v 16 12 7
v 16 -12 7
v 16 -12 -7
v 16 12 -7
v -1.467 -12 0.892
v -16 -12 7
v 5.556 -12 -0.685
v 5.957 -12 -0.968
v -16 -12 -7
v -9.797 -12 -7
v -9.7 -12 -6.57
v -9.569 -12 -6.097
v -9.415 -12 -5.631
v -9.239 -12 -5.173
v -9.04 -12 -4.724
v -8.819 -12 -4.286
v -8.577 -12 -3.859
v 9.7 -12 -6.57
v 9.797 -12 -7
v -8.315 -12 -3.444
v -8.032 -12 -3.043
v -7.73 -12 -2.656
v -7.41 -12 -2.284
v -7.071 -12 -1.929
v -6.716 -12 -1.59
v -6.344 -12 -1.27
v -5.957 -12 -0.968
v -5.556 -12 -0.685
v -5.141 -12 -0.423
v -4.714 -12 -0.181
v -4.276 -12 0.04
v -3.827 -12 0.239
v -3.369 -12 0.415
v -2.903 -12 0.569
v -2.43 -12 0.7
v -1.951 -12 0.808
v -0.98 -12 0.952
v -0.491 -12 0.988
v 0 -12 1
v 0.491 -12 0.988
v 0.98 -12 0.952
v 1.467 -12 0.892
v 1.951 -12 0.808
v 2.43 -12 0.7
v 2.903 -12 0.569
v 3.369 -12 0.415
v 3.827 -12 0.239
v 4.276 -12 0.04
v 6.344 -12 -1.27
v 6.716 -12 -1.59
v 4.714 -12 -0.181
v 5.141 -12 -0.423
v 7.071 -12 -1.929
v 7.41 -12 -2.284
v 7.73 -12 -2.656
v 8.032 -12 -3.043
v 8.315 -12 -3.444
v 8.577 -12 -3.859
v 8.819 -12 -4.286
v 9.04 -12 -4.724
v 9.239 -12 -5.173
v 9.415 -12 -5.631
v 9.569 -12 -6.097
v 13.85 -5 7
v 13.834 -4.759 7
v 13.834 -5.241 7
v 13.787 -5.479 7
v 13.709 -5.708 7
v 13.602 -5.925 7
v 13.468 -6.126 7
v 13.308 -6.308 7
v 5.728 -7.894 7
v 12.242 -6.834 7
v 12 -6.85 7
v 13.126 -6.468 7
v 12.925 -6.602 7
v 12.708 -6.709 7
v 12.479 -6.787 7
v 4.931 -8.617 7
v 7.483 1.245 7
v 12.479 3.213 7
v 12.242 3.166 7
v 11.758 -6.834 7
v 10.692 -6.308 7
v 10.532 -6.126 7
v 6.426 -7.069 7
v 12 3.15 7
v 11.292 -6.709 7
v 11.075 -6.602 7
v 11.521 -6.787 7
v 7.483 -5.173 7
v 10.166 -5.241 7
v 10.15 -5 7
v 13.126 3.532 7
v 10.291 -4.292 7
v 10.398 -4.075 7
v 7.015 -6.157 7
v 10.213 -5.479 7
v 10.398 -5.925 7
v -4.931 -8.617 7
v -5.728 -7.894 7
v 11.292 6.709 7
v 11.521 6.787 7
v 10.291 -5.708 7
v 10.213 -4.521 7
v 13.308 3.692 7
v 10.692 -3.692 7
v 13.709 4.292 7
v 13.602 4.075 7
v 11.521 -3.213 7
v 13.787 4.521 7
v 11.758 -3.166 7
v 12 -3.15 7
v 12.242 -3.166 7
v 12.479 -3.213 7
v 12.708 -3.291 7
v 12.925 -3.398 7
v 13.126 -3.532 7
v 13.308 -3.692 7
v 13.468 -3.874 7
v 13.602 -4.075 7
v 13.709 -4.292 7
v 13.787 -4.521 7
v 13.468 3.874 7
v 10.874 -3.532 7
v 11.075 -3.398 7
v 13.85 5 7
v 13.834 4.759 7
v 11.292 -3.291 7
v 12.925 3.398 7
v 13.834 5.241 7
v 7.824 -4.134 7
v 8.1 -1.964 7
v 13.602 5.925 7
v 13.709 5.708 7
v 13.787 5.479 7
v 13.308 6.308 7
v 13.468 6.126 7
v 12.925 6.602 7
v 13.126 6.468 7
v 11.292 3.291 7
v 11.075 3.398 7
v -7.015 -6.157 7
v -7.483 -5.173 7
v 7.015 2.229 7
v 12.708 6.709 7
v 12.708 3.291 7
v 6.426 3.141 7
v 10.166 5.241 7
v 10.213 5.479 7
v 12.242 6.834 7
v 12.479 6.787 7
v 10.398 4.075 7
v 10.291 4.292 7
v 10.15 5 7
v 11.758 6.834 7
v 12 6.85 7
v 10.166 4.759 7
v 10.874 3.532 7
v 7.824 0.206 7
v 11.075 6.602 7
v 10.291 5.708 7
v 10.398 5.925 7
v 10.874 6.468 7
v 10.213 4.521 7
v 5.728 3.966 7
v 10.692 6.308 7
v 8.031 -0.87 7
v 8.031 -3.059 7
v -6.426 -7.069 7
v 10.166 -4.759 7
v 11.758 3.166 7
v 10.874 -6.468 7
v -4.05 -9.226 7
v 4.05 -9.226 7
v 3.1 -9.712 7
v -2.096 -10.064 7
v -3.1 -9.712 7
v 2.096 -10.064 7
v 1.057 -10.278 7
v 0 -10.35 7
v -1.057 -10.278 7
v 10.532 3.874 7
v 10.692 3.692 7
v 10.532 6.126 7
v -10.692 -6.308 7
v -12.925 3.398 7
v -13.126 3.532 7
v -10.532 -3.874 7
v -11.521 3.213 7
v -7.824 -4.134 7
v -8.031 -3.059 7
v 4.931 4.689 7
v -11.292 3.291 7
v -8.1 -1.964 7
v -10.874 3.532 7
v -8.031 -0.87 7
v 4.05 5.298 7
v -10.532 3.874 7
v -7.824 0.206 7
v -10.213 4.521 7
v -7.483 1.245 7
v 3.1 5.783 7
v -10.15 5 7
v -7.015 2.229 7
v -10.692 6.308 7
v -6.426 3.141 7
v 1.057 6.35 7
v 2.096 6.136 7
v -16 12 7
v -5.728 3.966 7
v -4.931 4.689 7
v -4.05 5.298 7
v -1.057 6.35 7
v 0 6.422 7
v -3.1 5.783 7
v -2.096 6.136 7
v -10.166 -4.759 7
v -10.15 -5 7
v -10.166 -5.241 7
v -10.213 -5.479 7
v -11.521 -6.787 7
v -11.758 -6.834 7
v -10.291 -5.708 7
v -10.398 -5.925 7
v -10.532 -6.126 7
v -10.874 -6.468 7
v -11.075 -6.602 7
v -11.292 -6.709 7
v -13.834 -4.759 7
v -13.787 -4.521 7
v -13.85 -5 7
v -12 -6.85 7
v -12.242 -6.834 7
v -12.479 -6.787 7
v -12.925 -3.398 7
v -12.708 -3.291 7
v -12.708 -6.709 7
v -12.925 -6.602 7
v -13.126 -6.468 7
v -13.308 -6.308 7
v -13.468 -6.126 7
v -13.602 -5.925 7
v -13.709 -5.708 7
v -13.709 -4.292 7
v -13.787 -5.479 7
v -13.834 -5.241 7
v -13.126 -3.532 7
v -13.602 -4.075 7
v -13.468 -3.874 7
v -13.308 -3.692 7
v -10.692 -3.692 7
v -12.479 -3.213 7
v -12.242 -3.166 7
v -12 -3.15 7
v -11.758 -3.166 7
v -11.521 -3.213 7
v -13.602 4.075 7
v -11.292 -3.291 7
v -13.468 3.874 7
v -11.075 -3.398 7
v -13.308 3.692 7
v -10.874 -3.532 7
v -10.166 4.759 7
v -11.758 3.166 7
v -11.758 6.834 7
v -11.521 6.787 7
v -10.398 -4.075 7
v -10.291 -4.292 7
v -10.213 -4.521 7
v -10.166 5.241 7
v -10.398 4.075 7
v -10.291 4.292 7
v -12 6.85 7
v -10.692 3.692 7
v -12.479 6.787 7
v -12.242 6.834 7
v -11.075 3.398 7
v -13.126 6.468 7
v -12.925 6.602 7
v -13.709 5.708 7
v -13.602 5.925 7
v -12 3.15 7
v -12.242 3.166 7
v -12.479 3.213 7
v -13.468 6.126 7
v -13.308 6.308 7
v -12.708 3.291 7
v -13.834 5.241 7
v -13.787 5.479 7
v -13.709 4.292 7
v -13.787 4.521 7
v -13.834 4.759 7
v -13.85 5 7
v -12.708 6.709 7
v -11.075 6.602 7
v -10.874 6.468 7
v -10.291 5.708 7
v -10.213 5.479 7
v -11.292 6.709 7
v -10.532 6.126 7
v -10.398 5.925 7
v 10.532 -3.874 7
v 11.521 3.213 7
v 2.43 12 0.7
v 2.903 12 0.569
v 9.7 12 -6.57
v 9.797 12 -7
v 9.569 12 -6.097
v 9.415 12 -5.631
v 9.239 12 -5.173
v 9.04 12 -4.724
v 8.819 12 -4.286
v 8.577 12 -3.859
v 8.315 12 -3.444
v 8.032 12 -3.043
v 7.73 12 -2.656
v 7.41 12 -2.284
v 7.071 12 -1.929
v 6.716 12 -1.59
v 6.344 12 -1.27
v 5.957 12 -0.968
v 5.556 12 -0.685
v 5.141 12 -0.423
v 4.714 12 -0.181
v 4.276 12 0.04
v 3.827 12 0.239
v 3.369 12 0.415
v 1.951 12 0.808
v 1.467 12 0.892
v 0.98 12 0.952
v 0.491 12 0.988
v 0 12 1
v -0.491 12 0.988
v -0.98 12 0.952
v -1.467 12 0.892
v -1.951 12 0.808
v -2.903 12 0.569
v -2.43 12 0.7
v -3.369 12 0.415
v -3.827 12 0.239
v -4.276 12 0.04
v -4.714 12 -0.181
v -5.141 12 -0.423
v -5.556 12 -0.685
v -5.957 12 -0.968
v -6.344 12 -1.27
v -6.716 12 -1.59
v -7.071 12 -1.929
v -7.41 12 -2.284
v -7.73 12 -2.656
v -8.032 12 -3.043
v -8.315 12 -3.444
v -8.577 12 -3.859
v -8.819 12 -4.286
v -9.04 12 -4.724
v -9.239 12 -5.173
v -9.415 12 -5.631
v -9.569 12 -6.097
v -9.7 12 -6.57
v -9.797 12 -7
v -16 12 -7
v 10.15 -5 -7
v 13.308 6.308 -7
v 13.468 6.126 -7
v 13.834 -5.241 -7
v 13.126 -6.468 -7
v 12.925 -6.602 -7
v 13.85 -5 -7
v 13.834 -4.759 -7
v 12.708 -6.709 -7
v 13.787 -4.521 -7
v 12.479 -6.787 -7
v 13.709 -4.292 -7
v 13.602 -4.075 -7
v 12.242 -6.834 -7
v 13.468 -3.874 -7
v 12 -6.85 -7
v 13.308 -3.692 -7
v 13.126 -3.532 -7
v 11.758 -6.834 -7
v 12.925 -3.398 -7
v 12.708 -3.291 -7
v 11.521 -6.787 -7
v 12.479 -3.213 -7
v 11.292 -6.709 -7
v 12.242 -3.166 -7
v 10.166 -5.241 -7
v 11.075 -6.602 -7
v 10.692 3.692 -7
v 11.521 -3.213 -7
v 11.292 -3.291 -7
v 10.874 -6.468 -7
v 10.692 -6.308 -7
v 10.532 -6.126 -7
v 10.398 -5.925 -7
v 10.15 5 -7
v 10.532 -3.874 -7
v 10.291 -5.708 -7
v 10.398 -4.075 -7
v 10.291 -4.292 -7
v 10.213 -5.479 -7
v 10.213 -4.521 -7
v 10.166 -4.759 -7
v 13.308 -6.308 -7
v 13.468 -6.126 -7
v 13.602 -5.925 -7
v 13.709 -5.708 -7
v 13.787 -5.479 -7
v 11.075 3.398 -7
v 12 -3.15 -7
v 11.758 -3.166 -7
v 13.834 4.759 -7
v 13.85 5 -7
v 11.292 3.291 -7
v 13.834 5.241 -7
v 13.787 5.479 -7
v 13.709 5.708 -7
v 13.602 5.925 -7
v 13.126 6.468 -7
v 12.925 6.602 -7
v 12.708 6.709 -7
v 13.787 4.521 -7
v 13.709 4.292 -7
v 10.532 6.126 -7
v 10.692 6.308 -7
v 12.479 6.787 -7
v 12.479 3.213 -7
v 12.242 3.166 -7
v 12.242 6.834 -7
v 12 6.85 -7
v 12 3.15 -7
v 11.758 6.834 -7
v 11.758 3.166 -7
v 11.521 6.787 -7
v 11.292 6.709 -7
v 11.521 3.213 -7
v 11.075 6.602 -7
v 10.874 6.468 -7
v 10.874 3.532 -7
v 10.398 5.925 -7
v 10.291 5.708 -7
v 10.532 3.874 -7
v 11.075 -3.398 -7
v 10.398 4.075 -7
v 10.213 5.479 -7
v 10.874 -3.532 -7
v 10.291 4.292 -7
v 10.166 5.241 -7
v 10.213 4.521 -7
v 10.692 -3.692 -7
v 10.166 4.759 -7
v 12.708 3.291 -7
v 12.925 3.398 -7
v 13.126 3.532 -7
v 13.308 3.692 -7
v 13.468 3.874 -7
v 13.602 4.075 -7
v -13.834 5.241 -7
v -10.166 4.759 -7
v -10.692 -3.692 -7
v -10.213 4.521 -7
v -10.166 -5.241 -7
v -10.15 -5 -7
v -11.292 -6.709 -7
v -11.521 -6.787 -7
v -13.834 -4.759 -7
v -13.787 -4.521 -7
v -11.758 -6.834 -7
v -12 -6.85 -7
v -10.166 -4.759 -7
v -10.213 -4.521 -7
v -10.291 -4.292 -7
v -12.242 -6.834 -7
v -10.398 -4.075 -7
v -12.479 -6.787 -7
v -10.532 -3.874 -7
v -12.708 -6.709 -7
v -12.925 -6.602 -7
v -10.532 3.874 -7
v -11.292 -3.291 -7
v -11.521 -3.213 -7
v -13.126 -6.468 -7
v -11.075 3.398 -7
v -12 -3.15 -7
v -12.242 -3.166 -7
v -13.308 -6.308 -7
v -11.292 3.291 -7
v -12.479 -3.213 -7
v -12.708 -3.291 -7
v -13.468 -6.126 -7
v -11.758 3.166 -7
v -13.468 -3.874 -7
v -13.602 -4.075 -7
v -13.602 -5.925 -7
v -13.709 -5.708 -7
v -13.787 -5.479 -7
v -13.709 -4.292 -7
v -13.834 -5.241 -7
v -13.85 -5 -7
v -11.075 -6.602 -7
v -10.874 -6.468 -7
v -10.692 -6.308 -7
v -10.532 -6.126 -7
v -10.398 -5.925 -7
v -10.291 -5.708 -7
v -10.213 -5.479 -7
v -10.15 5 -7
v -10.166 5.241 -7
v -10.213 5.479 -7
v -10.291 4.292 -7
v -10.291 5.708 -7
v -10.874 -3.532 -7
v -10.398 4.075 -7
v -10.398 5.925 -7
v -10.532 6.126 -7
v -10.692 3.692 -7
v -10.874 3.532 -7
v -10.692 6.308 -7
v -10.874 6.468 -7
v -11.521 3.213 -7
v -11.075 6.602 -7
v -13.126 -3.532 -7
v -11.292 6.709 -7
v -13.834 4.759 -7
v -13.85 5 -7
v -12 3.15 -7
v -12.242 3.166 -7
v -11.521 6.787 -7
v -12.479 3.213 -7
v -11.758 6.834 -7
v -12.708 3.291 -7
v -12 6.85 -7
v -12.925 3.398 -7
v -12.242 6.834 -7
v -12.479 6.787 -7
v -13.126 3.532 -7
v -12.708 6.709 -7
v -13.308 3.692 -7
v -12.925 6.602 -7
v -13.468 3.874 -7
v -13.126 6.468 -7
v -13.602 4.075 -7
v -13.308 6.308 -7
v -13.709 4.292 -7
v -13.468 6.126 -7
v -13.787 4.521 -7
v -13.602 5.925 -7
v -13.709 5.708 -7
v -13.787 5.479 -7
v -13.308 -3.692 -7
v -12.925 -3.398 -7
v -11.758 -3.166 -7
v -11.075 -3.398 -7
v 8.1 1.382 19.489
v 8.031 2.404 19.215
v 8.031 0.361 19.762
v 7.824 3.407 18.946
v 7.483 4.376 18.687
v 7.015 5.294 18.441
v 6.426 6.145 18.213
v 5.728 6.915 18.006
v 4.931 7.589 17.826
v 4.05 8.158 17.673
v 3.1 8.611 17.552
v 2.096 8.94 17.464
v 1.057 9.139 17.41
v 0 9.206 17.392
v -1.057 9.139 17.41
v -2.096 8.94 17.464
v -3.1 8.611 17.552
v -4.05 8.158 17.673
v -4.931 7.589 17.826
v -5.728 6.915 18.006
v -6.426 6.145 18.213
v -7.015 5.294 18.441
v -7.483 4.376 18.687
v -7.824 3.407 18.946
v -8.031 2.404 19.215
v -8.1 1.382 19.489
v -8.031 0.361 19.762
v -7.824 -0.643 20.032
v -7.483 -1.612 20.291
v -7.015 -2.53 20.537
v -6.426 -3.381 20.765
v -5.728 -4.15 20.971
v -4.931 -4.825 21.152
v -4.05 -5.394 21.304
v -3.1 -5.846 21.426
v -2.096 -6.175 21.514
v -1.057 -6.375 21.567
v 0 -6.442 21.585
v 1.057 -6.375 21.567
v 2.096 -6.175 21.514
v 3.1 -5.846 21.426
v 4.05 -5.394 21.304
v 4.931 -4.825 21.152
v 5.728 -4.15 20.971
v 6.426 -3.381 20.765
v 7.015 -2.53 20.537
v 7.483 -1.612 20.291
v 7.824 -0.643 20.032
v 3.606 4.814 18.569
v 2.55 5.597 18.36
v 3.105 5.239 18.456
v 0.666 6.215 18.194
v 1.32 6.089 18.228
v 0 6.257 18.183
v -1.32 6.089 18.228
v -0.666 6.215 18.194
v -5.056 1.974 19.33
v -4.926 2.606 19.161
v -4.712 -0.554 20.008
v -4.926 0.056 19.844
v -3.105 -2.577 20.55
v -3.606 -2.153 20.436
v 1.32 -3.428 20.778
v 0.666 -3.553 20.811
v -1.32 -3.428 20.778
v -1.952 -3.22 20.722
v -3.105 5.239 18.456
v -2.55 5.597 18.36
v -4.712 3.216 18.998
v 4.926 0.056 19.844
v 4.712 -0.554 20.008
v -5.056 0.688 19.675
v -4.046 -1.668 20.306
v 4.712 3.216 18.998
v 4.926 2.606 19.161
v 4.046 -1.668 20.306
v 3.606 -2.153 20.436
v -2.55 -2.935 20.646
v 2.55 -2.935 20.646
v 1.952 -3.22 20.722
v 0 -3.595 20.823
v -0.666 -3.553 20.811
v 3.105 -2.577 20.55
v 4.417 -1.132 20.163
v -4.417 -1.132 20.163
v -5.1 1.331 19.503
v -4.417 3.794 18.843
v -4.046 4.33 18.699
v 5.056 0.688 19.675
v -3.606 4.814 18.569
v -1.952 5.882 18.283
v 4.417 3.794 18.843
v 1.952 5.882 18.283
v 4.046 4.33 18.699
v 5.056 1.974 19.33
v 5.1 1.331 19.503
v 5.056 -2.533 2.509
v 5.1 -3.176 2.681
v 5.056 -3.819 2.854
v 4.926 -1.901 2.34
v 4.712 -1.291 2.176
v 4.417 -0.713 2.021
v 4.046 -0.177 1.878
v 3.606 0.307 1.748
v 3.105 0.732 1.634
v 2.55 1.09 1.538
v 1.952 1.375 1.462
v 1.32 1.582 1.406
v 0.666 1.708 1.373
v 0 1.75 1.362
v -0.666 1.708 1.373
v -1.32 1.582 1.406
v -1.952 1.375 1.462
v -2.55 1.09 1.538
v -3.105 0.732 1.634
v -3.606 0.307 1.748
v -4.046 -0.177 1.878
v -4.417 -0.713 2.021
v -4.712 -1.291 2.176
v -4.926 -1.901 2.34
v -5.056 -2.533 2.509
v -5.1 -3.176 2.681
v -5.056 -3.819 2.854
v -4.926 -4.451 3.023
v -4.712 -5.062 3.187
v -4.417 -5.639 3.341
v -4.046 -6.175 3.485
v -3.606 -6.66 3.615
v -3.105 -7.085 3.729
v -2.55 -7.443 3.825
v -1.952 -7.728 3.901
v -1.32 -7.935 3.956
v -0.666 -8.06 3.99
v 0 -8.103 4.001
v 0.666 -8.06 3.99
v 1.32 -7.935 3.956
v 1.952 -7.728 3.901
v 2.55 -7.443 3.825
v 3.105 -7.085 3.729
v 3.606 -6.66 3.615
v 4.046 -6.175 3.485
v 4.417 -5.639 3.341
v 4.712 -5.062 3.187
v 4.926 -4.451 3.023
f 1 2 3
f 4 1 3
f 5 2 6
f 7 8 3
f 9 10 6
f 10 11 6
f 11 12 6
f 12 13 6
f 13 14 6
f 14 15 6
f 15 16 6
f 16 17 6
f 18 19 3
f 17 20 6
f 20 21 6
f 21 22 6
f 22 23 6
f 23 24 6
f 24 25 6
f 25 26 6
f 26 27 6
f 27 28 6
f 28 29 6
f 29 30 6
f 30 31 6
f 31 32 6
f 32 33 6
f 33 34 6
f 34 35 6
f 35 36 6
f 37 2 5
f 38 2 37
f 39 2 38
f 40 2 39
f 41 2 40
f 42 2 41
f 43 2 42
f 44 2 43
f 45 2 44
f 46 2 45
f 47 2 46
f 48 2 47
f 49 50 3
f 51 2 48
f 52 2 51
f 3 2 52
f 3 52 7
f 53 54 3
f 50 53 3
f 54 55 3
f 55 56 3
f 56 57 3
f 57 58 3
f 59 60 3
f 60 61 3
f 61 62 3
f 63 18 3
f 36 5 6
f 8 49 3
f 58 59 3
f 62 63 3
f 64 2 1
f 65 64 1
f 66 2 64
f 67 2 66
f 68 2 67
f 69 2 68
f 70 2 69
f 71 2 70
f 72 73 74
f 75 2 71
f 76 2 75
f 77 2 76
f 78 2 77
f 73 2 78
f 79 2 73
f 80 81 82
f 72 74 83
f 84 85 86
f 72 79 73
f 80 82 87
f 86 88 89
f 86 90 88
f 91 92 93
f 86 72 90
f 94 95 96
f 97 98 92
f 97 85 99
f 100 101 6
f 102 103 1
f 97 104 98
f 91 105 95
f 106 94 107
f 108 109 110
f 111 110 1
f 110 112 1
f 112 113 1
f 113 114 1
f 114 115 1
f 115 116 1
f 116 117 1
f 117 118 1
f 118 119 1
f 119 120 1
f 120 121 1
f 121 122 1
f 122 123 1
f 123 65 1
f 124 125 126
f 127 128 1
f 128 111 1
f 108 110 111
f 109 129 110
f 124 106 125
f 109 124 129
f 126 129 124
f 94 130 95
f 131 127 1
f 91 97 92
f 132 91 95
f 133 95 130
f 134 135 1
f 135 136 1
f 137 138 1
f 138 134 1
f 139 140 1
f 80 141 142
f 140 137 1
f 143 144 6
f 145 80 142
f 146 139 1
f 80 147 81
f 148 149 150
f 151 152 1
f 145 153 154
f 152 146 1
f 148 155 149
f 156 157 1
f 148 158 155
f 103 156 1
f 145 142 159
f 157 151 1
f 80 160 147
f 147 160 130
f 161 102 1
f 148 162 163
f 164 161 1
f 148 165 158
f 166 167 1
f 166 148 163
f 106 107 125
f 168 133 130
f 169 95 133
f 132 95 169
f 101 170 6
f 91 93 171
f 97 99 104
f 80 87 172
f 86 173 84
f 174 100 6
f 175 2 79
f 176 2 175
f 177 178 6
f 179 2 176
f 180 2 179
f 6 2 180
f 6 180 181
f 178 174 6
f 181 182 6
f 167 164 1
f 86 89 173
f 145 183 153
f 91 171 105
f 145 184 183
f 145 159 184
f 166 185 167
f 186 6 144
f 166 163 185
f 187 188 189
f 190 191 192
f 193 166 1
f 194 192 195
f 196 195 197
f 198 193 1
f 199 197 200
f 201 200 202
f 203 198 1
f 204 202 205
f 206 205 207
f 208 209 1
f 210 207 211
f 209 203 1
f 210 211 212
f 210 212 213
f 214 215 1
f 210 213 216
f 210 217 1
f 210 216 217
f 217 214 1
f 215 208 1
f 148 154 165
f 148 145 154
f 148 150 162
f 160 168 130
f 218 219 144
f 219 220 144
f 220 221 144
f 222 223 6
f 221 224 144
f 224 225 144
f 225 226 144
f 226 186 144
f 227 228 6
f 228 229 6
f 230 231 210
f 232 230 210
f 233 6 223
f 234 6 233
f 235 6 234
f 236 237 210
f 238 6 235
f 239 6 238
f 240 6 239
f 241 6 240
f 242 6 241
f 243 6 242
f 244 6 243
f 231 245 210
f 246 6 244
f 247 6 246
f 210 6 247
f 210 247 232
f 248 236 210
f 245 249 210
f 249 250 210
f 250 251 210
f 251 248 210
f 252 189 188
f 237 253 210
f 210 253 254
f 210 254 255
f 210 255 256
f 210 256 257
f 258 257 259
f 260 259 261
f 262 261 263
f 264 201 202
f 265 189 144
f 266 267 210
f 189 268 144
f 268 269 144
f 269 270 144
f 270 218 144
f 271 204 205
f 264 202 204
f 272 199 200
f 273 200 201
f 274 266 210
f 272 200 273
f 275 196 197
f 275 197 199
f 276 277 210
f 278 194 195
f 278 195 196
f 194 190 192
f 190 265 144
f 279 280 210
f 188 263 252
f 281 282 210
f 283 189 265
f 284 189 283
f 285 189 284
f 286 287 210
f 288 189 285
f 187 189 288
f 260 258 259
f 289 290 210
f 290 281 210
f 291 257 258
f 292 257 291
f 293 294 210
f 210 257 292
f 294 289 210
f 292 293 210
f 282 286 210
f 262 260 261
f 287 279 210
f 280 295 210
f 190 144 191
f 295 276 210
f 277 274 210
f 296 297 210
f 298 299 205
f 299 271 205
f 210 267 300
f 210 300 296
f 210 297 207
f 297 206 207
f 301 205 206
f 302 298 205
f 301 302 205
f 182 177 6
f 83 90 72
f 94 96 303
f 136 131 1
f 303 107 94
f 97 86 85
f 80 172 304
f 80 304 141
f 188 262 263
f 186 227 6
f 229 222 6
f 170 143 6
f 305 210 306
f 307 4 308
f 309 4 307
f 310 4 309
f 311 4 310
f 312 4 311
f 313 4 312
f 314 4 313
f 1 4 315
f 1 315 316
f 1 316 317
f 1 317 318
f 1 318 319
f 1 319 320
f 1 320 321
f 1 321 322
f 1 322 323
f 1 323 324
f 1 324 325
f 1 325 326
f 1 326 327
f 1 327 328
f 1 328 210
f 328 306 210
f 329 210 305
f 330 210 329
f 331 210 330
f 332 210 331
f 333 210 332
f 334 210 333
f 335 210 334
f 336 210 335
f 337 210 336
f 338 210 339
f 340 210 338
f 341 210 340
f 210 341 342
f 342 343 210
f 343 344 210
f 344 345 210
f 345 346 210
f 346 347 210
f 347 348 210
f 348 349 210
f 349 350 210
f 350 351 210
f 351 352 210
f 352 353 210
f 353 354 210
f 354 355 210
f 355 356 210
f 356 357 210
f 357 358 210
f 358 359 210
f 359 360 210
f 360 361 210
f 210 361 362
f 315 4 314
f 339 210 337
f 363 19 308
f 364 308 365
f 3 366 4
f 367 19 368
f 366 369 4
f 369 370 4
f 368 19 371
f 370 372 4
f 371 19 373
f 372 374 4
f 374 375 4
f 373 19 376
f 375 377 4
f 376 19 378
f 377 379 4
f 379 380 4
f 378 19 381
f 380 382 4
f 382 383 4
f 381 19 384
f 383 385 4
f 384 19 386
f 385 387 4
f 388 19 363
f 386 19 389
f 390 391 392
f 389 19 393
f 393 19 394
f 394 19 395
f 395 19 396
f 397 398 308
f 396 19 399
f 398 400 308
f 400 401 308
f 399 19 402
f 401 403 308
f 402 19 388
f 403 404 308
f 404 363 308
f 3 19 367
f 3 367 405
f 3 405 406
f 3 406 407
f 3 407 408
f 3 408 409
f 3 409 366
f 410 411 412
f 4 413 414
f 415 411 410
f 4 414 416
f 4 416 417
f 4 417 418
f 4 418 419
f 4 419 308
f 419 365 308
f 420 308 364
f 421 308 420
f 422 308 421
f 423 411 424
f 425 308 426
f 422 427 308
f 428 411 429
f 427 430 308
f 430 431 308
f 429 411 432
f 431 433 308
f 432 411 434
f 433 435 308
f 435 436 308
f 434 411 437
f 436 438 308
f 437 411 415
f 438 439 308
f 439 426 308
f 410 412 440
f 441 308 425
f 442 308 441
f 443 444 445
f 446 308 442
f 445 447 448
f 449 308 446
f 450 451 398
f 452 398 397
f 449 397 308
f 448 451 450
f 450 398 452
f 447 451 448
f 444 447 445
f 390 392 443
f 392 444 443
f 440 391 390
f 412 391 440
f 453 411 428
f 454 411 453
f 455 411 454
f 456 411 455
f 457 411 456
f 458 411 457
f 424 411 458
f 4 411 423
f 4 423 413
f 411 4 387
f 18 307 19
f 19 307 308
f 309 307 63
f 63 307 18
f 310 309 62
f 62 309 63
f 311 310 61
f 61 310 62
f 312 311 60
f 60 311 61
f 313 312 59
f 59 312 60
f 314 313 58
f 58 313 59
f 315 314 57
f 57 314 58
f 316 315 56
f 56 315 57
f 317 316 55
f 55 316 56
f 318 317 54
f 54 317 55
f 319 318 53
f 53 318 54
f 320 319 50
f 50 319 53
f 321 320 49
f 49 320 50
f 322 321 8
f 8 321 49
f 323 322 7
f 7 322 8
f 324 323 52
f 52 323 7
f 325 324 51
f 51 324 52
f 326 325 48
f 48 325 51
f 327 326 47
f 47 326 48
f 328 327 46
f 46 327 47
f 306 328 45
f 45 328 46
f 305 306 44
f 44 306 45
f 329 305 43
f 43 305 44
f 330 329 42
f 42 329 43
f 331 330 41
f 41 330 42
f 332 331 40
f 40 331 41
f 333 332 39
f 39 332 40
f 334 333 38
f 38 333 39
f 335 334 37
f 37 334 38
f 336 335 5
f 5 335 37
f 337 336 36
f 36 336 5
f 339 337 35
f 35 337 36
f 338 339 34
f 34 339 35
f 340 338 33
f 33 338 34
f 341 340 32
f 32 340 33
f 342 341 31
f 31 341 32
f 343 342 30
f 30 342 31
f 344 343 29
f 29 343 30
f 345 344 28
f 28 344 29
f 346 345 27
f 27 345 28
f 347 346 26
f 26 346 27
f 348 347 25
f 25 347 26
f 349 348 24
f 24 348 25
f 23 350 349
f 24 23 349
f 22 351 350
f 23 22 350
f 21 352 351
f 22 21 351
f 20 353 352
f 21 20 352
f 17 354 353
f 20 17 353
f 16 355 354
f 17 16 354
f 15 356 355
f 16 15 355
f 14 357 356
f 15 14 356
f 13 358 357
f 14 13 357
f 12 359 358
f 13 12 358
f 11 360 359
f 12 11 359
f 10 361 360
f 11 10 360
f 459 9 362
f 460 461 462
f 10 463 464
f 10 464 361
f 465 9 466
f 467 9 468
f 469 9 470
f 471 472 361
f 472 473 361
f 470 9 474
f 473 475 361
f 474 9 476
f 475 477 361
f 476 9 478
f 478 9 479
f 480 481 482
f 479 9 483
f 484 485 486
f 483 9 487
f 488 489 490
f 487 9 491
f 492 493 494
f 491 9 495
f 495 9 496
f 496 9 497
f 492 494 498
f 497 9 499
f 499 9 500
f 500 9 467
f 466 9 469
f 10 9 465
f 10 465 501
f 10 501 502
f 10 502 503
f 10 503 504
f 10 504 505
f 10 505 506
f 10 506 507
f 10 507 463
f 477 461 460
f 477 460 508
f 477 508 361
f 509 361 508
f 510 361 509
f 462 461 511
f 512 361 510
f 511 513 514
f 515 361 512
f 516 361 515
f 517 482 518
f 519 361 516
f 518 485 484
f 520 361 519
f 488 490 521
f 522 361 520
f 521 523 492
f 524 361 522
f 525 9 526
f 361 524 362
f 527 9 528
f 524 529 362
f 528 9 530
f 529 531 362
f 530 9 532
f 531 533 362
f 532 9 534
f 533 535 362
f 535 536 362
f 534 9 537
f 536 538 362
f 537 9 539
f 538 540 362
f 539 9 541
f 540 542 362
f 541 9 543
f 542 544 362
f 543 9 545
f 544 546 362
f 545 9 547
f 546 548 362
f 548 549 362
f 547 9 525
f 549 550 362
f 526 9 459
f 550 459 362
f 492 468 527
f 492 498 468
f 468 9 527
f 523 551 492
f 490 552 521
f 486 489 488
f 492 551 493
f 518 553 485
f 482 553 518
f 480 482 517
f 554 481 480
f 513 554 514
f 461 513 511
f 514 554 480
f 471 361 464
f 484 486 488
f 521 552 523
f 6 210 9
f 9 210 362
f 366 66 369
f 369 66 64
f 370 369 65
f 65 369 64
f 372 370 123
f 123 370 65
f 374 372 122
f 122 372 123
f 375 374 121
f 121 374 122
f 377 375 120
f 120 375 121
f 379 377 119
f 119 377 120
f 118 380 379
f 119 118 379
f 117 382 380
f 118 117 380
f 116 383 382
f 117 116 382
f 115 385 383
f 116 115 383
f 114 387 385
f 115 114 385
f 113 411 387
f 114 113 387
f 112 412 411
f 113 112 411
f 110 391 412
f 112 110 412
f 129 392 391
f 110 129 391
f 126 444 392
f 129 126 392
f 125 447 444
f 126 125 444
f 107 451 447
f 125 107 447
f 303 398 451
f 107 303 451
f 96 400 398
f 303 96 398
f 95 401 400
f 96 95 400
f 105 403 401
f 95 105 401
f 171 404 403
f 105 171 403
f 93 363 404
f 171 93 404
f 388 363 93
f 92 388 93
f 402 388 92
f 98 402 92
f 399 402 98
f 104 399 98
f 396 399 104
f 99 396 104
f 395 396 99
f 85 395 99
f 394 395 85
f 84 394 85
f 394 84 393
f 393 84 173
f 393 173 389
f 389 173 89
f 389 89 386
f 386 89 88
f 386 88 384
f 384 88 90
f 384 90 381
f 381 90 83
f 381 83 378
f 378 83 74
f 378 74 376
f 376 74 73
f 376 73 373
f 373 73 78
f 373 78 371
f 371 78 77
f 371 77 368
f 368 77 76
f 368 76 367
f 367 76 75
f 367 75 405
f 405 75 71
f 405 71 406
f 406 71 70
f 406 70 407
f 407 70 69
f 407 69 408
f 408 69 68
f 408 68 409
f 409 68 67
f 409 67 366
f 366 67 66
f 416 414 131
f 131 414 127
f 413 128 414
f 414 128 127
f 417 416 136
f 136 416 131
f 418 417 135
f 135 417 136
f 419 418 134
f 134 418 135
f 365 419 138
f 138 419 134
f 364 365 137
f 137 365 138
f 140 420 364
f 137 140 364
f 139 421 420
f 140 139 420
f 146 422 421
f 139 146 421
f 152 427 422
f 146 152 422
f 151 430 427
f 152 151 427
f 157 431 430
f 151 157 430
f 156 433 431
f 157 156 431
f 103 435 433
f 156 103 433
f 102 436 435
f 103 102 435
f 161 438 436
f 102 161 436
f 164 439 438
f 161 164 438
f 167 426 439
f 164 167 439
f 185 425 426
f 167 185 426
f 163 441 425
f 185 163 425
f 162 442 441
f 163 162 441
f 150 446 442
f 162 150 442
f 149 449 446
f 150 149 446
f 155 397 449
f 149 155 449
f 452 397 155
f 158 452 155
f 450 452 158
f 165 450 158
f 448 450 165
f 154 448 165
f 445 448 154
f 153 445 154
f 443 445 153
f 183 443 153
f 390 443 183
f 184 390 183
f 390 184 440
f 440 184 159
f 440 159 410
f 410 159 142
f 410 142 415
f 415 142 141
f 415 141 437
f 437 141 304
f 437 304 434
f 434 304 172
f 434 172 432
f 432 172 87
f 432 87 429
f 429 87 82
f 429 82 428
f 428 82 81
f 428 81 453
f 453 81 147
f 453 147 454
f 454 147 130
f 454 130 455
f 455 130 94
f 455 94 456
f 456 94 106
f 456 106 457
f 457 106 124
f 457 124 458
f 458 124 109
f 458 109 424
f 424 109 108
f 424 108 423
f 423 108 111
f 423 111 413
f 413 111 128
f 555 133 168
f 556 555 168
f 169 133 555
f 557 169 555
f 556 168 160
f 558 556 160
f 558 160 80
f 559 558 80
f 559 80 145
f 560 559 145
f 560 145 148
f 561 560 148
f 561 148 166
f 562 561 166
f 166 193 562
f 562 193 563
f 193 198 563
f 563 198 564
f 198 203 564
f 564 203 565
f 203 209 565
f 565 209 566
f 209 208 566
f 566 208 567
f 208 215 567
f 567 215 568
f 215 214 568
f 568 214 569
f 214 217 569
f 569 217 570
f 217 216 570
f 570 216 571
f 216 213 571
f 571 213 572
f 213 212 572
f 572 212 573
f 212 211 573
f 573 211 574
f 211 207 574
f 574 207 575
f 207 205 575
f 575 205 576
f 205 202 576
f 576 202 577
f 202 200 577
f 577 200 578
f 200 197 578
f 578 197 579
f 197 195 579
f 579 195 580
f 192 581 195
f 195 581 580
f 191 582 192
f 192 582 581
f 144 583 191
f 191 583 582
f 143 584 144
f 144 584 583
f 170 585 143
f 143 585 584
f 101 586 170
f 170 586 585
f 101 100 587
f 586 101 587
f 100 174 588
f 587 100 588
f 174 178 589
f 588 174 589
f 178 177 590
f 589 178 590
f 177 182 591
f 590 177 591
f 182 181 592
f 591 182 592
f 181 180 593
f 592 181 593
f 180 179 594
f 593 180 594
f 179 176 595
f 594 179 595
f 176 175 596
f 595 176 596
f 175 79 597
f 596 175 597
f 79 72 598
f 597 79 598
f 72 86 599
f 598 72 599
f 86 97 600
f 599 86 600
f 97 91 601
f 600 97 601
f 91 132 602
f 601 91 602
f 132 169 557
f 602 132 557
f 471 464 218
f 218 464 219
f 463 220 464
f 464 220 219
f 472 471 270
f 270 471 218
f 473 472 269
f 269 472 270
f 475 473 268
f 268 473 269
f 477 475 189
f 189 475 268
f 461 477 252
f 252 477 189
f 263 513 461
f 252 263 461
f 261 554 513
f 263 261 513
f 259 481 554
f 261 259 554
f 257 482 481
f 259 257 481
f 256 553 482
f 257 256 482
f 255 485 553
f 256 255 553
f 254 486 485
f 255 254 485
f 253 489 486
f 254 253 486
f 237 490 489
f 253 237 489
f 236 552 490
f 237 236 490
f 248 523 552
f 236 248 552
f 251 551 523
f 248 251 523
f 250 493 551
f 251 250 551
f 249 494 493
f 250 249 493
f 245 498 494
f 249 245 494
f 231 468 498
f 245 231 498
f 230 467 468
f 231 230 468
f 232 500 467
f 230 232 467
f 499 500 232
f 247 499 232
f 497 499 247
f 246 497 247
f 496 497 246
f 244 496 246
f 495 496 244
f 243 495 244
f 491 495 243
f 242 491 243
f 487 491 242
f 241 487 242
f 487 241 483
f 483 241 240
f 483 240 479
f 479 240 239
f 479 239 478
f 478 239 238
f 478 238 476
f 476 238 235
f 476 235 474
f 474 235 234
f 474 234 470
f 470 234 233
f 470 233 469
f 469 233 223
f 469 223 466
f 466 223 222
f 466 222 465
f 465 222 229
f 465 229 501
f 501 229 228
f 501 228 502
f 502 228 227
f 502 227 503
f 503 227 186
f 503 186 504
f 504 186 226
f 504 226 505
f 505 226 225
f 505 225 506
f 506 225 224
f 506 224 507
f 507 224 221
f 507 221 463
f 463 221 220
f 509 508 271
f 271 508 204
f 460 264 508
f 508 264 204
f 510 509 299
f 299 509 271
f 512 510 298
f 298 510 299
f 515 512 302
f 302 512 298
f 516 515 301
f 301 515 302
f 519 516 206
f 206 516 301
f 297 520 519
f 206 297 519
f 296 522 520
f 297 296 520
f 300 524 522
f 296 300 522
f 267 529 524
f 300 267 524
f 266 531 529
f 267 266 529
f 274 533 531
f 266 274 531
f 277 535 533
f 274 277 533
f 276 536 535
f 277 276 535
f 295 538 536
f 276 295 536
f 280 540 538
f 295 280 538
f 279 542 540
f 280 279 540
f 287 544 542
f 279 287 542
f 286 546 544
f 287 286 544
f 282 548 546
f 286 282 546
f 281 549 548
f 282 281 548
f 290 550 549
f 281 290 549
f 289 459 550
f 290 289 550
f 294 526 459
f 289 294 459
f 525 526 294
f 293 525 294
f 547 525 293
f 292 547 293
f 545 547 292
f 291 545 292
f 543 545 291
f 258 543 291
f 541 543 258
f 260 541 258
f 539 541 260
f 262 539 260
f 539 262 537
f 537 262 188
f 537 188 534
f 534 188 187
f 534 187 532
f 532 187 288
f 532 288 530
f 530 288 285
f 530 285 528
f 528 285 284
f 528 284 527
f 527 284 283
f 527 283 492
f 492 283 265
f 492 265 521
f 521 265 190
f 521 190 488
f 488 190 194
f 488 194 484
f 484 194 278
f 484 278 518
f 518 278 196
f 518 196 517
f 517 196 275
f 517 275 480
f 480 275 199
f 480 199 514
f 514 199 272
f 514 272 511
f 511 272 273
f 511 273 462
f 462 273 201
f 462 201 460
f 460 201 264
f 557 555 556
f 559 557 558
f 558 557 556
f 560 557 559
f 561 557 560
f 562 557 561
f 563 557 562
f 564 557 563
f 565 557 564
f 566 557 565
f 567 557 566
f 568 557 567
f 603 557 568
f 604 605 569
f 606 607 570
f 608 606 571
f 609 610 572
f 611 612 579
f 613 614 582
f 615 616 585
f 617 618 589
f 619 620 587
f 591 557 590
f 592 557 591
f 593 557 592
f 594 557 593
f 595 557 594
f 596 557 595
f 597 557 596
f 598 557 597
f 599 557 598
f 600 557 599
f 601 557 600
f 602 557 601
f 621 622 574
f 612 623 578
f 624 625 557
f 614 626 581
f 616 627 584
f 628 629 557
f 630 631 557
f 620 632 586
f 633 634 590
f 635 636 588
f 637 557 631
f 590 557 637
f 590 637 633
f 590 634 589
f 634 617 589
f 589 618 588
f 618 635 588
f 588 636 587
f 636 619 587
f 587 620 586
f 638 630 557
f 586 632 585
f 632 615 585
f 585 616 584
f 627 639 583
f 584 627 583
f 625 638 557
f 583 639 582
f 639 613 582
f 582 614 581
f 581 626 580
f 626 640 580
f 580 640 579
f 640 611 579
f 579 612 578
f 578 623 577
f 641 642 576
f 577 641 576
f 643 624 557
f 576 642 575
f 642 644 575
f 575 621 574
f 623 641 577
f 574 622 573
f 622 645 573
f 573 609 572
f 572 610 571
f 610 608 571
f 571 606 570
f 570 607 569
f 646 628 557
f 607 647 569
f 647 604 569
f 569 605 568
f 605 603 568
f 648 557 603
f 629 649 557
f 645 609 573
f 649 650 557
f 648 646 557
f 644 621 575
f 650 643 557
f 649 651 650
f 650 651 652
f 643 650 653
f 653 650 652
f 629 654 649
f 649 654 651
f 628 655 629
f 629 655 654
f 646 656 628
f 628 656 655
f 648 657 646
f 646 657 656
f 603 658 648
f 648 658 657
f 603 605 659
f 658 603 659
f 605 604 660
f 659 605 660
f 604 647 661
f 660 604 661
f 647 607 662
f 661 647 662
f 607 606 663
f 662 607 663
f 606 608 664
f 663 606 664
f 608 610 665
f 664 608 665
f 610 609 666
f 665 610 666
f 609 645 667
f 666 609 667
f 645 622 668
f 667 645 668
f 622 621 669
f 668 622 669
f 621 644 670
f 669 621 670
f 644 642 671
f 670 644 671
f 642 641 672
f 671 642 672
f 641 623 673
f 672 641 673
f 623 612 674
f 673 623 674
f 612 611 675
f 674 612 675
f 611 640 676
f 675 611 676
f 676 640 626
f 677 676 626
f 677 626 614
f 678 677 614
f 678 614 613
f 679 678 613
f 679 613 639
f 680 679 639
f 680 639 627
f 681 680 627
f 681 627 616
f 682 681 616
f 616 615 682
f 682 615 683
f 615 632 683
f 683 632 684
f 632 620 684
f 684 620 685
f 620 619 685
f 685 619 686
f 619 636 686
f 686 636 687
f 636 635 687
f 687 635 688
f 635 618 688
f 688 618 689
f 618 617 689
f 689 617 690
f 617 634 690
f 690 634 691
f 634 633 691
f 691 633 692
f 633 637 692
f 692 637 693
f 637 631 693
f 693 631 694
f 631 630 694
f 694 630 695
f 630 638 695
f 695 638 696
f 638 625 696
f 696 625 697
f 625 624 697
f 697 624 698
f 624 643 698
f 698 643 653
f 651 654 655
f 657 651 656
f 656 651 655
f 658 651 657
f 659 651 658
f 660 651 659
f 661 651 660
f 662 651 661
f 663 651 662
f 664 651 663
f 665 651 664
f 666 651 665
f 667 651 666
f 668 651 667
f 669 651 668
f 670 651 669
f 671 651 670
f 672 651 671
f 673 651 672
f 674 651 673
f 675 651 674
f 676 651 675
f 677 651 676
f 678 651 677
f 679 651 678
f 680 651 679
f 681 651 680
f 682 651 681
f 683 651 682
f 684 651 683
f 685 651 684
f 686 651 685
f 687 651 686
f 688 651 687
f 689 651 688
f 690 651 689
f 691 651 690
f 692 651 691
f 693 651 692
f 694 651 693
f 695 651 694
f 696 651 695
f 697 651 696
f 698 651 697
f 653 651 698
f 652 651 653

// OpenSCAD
module clamp_body()
{
screw_hole_r=1.85; // for 3.5mm screws
leg_rad=5.1; // for a 10mm leg 
  difference()
    {
    // main body around spar hole
    union(){
      cube([32,24,14], center=true);
      translate([0,-2.5,-5])
      rotate(15,[1,0,0])
      cylinder(h=30,r=leg_rad+3,center=true,$fn=48);
    }
    union()
      {
      translate([0,0,9])
        // main notch for spar
        rotate(90,[1,0,0])
        cylinder(h=50, r=10, center=true,$fn=128);

      // hole for leg
      translate([0,2,-22])
      rotate(15,[1,0,0])
      #cylinder(h=40,r=leg_rad,center=true,$fn=48);

      // Holes along side rails for bolting alongside spar
      translate([12,-5,-20])
      cylinder(h=40,r=screw_hole_r,centre=true,$fn=48);
      translate([-12,-5,-20])
      cylinder(h=40,r=screw_hole_r,centre=true,$fn=48);
      translate([12,5,-20])
      cylinder(h=40,r=screw_hole_r,centre=true,$fn=48);
      translate([-12,5,-20])
      cylinder(h=40,r=screw_hole_r,centre=true,$fn=48);
      
    }
  }
 
}

rotate(180,[0,1,0])
clamp_body();
